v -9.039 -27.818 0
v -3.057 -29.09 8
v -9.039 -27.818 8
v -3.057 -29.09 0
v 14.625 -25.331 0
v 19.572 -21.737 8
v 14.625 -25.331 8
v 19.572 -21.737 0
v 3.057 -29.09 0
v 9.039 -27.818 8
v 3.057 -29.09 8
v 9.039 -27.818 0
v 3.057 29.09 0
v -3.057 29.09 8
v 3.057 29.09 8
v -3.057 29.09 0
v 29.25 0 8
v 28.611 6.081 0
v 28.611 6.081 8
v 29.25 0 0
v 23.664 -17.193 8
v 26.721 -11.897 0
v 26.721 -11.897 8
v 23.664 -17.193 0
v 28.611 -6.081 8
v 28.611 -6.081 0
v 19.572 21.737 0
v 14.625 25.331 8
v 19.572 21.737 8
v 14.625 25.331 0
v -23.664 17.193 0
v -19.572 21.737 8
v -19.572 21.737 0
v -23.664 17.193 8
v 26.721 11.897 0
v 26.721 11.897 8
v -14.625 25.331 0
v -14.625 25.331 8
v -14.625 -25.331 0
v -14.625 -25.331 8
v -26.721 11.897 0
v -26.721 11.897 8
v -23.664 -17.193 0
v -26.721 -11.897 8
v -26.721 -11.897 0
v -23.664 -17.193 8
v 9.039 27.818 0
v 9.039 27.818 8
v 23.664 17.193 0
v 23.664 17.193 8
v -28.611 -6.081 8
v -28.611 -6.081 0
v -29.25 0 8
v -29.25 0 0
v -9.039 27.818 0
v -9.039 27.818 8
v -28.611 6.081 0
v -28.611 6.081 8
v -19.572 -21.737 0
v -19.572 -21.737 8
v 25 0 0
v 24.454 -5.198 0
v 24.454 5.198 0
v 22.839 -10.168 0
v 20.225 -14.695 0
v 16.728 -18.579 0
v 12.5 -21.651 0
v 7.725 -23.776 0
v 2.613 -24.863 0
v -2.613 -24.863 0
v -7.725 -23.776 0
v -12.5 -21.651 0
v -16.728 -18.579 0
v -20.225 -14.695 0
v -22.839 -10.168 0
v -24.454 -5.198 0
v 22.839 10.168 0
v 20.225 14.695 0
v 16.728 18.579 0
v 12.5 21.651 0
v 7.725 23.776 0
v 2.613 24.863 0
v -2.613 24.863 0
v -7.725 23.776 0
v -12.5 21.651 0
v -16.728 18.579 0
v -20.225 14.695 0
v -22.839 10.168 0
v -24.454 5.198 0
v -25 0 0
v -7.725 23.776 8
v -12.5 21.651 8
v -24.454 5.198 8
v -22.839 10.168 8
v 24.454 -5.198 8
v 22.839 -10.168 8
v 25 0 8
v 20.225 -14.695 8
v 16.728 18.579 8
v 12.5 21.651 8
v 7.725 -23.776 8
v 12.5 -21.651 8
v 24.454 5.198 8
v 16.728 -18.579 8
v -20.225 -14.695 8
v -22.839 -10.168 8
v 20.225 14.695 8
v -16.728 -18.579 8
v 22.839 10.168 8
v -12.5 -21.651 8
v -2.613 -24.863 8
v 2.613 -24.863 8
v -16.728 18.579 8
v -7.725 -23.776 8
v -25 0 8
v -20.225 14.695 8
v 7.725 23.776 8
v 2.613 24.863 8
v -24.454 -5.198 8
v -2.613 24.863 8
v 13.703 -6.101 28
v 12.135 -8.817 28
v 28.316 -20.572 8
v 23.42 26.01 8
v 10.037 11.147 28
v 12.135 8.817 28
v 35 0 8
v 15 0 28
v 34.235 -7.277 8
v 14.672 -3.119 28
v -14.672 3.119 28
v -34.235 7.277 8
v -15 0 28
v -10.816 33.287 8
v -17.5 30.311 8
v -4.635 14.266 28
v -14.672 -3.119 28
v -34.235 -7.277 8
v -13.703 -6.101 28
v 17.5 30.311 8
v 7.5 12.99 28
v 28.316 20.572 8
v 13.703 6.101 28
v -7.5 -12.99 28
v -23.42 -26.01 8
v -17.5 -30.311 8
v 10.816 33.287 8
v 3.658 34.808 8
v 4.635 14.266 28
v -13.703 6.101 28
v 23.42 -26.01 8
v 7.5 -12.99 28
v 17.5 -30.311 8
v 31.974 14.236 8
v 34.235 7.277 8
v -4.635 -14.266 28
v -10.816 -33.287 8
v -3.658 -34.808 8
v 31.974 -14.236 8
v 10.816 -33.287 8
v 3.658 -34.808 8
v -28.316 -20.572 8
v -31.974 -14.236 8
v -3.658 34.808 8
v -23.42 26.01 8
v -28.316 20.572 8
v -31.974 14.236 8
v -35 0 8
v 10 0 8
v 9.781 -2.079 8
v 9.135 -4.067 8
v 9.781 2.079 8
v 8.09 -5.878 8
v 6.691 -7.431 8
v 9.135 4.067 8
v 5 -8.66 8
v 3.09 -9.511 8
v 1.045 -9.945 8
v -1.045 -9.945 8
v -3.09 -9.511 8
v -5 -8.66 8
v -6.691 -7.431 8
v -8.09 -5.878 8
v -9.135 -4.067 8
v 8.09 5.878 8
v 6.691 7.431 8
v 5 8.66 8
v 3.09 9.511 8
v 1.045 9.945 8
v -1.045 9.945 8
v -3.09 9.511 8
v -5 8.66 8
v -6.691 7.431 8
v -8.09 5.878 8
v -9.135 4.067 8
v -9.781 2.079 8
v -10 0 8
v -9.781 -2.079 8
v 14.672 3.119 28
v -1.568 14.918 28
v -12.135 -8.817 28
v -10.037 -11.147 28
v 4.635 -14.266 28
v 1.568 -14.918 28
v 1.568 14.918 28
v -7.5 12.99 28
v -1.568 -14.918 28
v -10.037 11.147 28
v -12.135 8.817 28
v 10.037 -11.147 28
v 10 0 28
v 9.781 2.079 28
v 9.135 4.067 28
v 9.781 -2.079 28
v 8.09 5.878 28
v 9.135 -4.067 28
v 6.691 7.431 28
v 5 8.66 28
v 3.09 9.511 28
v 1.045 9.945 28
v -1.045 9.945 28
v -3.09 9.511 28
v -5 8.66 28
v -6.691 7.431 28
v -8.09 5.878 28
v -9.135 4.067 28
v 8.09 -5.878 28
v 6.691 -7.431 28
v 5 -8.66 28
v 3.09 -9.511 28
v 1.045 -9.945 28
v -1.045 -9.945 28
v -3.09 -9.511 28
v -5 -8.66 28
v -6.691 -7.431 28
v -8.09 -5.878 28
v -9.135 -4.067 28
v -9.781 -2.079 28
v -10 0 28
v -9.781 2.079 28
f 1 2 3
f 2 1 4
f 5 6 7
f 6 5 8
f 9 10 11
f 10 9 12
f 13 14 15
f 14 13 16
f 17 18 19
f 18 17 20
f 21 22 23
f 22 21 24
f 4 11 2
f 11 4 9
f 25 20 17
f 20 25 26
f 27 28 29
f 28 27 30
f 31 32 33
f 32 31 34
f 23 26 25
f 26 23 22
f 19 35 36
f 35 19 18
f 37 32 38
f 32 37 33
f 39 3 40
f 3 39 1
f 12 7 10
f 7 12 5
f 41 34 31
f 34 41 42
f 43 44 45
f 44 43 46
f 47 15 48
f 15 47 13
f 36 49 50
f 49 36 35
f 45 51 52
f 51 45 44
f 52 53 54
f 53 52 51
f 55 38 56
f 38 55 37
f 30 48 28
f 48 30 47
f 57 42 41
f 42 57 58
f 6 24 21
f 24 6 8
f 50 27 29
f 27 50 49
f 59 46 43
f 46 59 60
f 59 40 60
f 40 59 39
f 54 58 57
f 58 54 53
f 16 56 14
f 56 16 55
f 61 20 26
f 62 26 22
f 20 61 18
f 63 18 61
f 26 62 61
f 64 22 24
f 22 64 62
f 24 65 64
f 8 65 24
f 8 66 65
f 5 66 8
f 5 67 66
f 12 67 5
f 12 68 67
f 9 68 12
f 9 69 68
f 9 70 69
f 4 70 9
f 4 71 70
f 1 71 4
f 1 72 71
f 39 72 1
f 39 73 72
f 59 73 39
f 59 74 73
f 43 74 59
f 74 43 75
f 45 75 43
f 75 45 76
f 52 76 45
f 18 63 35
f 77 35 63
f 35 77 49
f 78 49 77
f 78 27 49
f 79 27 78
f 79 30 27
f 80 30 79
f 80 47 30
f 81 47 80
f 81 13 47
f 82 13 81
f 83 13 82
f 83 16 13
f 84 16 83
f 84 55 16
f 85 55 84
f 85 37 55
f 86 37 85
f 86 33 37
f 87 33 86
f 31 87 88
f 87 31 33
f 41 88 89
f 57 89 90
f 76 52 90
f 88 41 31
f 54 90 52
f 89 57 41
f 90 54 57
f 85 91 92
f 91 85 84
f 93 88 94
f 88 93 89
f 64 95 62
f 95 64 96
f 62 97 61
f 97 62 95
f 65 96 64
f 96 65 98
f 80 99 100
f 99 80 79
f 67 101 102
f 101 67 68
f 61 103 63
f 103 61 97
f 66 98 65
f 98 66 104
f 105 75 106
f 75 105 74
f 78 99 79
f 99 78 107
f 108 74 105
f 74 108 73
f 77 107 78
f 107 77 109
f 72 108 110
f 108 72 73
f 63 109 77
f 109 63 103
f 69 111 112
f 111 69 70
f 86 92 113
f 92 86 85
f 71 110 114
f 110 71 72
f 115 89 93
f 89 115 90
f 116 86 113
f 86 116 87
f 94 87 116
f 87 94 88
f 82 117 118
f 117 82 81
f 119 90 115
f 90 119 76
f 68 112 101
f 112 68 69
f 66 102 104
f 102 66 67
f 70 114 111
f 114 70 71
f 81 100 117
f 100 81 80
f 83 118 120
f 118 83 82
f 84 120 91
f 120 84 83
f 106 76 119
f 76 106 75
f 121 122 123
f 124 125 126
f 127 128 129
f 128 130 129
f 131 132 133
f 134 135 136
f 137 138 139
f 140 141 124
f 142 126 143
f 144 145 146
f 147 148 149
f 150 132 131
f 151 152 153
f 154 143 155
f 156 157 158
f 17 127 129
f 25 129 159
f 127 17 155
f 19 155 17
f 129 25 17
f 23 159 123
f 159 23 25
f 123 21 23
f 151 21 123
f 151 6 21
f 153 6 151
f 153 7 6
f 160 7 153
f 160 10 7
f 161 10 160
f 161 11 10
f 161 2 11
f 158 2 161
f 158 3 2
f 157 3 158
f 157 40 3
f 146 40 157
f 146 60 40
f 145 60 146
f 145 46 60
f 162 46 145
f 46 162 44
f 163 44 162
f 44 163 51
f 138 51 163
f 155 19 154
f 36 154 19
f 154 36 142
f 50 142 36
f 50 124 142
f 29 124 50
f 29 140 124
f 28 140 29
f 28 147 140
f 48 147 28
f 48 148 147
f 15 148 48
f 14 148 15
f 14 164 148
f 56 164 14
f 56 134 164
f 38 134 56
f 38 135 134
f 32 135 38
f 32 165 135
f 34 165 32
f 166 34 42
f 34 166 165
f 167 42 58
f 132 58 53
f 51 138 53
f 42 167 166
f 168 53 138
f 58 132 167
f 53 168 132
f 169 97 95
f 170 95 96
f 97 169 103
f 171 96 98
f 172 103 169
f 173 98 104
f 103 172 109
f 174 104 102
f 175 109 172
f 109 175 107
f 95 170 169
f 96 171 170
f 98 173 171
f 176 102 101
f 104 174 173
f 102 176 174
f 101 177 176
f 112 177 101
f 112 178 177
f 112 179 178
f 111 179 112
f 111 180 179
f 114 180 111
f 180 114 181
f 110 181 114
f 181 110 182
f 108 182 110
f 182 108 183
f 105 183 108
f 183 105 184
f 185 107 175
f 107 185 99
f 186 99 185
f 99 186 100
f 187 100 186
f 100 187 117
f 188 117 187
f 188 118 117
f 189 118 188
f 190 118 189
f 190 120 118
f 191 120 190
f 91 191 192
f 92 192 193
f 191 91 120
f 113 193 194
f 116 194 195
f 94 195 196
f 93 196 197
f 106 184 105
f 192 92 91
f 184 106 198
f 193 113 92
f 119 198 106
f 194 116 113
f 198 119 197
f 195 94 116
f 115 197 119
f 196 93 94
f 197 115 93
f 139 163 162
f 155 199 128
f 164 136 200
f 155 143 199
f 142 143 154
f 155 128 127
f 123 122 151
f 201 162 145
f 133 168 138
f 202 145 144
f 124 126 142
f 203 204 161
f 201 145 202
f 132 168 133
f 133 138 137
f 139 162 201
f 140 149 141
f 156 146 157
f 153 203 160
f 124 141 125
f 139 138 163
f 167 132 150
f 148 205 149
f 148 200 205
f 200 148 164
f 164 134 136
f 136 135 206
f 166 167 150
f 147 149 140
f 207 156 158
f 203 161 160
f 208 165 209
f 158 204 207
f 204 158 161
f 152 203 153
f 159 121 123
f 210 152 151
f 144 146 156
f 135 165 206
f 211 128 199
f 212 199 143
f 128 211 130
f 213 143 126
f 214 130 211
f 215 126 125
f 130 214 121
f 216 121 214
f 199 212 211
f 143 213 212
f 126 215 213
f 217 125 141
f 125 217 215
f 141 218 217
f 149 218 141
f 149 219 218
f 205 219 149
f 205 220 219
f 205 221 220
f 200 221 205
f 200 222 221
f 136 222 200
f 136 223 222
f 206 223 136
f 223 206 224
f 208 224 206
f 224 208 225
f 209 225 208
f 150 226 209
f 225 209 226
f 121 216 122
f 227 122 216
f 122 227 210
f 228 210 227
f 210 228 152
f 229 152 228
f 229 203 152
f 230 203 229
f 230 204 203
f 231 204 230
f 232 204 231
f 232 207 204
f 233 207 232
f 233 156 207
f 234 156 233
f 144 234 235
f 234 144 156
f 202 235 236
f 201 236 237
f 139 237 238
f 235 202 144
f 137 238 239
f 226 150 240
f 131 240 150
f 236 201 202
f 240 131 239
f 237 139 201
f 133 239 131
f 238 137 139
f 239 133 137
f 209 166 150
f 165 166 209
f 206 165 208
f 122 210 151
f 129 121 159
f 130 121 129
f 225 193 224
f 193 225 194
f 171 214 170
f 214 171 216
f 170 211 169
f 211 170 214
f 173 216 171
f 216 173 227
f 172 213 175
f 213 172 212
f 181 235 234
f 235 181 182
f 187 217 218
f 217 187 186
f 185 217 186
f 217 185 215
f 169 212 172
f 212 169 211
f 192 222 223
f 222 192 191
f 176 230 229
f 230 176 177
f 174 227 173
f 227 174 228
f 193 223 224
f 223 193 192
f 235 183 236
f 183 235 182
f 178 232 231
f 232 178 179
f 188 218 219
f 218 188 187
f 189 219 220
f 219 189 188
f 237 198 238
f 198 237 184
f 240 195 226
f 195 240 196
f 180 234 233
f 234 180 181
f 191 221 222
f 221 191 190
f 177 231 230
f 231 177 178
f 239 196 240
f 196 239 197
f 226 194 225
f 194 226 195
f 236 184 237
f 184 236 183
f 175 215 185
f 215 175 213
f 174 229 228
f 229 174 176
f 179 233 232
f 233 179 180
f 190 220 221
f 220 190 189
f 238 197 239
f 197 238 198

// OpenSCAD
scale([.5, .5, 1]) {

    translate([0, 0, 28]) {
    rotate([180, 0, 0]) {
        difference() {
            translate([0, 0, 0]) { 
               cylinder(20, 30, 70);
            }
            translate([0, 0, -1]) { 
               cylinder(60, 20, 20);
            }
        }
        difference() {
            translate([0, 0, 16]) { 
               cylinder(12, 58.5, 58.5);
            }
            translate([0, 0, 16]) { 
               cylinder(15, 50, 50);
            }

        }
    }
    }
}
